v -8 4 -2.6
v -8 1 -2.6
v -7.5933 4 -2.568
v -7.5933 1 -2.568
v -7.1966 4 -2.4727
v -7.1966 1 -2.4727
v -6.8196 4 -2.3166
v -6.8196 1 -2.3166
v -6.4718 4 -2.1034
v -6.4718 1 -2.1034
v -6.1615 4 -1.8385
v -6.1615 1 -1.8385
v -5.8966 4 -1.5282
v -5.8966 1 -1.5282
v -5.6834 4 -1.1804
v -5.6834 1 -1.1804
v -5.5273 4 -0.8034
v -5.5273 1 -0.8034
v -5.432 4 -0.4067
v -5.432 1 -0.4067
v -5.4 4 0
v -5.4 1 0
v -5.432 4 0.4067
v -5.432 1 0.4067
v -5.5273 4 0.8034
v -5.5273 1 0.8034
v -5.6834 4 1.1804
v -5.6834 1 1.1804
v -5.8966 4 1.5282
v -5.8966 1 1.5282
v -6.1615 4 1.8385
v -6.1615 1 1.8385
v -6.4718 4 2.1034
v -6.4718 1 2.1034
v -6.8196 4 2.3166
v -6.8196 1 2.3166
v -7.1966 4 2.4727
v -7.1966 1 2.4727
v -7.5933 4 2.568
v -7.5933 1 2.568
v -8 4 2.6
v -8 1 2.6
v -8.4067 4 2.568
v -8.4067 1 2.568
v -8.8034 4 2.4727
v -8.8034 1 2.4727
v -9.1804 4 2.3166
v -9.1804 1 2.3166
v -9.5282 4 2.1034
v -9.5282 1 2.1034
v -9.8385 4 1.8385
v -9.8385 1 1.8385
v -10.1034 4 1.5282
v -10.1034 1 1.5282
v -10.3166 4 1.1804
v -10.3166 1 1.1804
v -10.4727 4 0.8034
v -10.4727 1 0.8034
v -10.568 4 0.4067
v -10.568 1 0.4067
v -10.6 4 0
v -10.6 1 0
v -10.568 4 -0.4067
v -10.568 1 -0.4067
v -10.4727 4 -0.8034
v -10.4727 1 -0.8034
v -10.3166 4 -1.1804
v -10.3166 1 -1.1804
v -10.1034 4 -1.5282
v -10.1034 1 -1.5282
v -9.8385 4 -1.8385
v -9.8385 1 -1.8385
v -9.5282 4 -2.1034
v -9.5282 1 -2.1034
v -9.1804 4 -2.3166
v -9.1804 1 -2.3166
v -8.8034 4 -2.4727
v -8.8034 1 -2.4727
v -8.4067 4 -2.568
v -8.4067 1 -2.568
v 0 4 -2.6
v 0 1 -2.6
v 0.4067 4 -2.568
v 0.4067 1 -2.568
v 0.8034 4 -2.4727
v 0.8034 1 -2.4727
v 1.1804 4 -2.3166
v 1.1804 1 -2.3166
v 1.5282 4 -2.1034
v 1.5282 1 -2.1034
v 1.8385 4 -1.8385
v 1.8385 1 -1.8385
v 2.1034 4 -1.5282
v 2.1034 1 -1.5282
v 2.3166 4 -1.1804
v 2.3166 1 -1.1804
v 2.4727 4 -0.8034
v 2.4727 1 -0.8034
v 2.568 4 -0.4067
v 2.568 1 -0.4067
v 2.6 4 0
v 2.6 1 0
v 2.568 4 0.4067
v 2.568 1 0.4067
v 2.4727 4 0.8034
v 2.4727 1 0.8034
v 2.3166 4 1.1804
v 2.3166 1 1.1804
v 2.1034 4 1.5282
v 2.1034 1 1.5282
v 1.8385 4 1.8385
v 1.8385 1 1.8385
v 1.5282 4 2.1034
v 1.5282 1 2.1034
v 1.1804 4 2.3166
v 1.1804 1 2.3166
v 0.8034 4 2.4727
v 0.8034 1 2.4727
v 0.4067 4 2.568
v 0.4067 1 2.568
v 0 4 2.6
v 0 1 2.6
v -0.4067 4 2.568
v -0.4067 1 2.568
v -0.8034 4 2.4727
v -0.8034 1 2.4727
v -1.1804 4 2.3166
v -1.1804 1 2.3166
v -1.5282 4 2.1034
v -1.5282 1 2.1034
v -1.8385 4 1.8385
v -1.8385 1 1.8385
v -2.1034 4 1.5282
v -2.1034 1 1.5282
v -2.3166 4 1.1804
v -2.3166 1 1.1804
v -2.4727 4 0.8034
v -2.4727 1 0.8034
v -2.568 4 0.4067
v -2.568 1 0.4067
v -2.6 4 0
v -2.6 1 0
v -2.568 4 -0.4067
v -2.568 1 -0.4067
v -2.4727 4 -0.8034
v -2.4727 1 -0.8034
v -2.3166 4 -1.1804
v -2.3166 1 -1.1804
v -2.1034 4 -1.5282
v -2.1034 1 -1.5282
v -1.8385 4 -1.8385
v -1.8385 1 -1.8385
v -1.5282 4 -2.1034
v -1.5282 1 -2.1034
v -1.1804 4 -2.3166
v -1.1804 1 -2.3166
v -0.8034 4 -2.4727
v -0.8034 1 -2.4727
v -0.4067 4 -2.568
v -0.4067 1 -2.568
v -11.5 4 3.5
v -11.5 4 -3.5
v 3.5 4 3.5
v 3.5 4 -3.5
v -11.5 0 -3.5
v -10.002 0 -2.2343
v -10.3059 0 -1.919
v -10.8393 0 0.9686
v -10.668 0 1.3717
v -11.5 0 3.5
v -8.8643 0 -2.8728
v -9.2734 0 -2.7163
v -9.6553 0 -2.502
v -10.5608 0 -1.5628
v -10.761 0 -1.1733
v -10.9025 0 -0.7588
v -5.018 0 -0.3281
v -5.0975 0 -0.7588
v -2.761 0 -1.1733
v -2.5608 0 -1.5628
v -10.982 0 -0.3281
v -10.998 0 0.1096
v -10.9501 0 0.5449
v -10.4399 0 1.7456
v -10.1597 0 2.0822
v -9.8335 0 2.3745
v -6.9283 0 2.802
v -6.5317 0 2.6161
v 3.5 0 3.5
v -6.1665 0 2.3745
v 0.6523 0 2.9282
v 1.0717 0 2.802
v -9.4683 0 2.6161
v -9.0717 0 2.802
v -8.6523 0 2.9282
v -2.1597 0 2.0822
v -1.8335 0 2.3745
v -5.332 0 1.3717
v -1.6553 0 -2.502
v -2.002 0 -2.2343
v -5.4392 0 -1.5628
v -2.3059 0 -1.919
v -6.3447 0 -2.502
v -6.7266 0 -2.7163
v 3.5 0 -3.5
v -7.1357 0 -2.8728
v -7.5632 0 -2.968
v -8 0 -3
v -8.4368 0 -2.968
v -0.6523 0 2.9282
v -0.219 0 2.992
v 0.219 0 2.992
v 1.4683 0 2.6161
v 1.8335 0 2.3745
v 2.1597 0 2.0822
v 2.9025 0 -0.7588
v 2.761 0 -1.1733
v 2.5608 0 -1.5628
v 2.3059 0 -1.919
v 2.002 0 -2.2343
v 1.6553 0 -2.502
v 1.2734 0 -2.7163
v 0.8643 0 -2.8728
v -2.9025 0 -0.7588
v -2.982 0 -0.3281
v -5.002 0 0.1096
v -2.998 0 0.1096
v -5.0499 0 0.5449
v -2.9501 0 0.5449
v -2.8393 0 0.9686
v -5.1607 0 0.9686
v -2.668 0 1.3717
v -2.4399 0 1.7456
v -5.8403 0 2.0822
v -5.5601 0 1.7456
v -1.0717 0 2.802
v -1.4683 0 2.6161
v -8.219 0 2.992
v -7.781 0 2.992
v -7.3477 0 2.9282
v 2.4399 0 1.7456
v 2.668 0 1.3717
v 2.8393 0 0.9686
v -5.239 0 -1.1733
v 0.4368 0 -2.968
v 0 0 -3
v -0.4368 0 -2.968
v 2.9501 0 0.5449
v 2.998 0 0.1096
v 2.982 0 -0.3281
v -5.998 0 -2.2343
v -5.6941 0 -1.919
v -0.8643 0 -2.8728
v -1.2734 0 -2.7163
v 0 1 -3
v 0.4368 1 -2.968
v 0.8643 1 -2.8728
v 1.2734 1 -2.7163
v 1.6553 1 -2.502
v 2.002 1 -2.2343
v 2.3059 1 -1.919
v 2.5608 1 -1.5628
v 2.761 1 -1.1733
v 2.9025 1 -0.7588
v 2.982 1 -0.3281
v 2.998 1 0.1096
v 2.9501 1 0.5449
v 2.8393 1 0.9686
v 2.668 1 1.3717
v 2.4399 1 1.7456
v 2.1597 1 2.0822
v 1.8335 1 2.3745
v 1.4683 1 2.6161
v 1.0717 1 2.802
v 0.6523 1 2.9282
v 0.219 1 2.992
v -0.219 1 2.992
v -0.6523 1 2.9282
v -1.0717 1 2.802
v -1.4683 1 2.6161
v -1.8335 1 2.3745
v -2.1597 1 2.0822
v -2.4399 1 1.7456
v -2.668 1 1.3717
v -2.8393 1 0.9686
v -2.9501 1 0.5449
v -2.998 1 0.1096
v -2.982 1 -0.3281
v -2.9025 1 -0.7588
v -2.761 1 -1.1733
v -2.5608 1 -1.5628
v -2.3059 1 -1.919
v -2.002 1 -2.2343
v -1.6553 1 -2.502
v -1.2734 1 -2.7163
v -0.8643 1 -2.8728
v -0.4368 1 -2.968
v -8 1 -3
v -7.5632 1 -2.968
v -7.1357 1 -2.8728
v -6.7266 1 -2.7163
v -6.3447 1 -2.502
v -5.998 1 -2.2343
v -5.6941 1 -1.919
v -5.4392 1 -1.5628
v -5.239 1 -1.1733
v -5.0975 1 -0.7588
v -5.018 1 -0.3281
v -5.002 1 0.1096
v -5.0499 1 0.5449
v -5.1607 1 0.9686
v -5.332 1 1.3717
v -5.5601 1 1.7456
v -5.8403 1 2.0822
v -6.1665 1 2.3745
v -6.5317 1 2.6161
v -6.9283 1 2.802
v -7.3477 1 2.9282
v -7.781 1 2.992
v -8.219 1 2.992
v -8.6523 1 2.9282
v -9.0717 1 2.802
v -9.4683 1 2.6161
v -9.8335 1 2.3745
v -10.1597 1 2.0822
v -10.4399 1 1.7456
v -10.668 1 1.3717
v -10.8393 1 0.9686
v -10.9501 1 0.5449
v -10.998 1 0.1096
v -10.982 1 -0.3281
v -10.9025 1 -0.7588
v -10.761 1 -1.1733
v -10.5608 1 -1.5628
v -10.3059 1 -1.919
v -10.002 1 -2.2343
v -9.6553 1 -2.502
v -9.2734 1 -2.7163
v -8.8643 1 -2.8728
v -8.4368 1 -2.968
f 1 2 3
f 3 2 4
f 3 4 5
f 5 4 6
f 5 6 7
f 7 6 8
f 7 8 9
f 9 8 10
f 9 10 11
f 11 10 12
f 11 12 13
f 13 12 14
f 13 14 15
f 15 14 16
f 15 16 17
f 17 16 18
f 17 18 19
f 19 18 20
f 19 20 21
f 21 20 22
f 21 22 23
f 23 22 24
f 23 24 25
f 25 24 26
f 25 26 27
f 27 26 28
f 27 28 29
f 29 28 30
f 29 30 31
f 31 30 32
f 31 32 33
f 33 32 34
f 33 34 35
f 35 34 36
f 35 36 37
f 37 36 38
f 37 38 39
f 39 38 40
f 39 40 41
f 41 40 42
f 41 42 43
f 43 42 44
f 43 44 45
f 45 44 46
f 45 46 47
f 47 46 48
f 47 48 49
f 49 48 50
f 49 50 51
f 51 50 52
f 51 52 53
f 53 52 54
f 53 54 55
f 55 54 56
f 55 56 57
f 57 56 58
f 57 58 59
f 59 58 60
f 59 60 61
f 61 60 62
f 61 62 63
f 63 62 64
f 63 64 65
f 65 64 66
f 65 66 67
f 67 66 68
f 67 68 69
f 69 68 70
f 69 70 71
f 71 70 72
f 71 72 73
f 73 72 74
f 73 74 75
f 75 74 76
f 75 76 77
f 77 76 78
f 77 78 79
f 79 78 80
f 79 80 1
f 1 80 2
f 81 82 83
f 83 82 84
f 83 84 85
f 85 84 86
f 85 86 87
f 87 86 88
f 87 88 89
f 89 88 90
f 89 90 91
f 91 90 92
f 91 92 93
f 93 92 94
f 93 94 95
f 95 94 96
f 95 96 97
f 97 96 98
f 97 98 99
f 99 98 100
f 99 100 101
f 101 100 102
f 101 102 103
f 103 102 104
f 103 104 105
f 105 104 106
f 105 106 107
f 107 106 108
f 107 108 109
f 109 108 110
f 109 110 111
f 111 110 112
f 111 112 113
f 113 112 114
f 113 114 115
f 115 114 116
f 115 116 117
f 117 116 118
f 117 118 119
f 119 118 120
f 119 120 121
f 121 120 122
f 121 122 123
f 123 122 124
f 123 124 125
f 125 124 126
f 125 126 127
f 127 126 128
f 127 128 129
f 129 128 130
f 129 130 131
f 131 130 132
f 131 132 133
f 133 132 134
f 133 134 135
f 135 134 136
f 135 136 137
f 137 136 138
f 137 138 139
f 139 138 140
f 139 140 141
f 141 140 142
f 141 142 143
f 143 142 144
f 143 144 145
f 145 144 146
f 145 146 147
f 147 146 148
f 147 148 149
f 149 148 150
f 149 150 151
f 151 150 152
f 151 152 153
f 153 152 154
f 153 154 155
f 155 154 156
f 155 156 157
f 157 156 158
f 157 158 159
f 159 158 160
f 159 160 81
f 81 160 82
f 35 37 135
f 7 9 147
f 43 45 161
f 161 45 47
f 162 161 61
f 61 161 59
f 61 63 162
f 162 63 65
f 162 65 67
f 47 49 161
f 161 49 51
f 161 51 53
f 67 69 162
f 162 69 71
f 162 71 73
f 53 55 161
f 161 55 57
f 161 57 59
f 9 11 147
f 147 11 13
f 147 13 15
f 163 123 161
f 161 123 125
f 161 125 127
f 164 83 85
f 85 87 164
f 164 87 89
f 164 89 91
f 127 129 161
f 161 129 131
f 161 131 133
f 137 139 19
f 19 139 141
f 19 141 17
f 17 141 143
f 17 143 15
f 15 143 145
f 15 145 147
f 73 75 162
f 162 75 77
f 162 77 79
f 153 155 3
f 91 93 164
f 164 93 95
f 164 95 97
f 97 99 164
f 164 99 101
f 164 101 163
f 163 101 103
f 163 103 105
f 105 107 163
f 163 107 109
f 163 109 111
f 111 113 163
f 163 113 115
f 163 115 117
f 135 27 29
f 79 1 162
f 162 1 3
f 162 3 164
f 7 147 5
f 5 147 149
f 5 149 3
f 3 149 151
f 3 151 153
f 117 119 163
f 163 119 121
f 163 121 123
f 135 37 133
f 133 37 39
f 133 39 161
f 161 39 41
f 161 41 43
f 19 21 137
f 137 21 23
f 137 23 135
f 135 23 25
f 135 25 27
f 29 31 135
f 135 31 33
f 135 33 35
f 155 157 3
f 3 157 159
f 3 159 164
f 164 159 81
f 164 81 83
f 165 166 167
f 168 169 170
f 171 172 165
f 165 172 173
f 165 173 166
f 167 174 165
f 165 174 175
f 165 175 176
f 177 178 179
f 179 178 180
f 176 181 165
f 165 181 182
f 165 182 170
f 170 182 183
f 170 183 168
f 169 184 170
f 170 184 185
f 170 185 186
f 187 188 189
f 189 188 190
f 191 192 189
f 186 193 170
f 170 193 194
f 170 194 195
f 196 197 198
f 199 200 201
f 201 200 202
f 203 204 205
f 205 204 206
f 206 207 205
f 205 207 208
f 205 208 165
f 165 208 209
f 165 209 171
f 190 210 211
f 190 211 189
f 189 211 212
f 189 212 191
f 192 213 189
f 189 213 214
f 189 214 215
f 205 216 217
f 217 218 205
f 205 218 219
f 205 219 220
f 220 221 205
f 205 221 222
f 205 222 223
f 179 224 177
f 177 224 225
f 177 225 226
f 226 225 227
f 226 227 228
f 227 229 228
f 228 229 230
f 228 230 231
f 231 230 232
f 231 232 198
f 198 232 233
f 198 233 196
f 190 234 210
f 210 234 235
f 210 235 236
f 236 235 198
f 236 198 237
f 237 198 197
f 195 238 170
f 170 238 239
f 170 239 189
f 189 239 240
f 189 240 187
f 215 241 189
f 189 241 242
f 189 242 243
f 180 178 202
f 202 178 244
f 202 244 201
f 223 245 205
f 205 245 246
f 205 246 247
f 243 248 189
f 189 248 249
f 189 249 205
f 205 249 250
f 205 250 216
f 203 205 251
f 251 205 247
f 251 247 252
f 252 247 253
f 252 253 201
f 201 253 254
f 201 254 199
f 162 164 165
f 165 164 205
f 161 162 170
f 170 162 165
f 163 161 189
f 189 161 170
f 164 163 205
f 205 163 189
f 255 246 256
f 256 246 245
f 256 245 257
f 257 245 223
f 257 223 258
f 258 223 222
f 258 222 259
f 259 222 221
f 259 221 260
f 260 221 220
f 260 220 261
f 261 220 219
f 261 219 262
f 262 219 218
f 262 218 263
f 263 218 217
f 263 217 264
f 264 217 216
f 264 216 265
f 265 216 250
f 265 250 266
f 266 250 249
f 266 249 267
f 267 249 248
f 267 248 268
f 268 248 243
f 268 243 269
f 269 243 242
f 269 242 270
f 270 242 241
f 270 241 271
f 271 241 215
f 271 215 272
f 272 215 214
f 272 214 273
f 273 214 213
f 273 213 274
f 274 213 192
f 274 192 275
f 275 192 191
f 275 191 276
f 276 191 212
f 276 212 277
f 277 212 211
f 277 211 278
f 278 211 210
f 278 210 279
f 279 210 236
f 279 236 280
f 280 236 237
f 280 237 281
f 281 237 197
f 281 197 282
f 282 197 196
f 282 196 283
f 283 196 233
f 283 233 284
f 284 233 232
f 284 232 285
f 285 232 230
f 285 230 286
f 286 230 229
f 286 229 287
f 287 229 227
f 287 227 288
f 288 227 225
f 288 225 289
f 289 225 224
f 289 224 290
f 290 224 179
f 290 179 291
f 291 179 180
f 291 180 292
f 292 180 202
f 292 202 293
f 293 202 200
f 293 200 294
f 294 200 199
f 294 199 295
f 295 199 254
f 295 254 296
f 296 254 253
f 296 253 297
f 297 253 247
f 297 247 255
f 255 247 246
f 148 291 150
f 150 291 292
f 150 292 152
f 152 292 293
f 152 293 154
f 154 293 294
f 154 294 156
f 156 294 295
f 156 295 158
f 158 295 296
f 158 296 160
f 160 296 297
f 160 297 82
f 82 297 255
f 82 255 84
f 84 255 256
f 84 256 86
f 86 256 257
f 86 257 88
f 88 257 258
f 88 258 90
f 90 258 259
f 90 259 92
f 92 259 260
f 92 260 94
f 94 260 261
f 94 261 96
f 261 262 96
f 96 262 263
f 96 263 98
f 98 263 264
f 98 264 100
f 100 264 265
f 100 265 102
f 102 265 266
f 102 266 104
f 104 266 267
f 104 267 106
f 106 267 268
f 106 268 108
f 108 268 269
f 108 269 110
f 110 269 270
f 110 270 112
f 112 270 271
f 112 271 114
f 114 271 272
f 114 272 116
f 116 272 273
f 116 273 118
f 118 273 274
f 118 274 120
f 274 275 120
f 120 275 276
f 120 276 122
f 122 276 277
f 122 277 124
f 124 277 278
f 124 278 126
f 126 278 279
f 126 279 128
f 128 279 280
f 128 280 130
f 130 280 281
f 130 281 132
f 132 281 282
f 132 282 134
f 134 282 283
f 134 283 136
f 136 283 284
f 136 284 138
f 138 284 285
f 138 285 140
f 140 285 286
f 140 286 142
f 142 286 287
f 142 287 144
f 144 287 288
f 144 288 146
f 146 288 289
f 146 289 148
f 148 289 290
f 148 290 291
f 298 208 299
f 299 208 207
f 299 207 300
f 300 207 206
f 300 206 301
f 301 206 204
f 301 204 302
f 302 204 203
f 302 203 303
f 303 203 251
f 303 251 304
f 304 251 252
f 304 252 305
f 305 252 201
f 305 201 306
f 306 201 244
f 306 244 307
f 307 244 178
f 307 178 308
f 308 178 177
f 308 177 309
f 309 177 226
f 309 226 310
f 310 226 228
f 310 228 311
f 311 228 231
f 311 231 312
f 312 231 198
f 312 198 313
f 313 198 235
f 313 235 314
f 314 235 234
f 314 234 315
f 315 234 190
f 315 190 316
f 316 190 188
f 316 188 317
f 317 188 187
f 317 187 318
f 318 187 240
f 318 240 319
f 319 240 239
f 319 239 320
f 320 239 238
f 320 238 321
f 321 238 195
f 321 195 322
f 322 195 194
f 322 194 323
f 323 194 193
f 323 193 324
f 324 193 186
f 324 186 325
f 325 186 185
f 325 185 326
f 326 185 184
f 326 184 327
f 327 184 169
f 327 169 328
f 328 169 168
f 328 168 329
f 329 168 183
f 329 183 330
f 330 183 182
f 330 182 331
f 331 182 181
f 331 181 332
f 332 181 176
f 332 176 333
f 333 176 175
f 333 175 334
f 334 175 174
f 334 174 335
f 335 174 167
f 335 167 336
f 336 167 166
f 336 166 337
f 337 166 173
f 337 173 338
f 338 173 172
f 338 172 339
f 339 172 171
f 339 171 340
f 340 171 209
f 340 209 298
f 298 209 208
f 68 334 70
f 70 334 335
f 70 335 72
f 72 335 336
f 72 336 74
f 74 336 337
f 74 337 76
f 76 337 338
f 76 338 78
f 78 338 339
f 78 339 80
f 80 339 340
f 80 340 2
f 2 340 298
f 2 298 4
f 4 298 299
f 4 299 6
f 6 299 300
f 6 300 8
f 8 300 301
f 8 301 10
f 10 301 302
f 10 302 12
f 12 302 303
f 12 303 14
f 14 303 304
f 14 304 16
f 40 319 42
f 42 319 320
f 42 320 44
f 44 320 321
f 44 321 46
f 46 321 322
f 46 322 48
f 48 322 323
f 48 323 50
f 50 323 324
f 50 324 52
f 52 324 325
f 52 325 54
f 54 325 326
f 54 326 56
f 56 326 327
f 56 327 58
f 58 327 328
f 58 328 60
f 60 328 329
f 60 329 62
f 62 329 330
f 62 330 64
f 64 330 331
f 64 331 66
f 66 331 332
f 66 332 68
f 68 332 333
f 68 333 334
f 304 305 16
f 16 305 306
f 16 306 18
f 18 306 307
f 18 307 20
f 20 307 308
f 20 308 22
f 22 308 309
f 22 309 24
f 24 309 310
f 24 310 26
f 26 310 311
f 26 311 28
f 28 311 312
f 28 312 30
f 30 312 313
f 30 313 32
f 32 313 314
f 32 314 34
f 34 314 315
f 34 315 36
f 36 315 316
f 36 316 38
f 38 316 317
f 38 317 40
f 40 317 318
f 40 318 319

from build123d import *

# Parameters (mm, degrees)
CROQUIS1_W              = 15
CROQUIS1_H              = 7
CROQUIS1_R              = 2.6
SALIENTE_EXTRUIR1_DEPTH = 4
CROQUIS2_R              = 3
CORTAR_EXTRUIR1_DEPTH   = 1


with BuildPart() as part:
    # Croquis1 → Saliente-Extruir1 (new body)
    with BuildSketch(Plane(origin=(0, 0, 0), x_dir=(1, 0, 0), z_dir=(0, 1, 0))):
        with Locations((-4, 0)):
            Rectangle(CROQUIS1_W, CROQUIS1_H)
        Circle(CROQUIS1_R, mode=Mode.SUBTRACT)
        with Locations((-8, 0)):
            Circle(CROQUIS1_R, mode=Mode.SUBTRACT)
    extrude(amount=SALIENTE_EXTRUIR1_DEPTH)

    # Croquis2 → Cortar-Extruir1 (cut)
    with BuildSketch(Plane.XZ):
        Circle(CROQUIS2_R)
        with Locations((-8, 0)):
            Circle(CROQUIS2_R)
    extrude(amount=-CORTAR_EXTRUIR1_DEPTH, mode=Mode.SUBTRACT)


solid = part.part
